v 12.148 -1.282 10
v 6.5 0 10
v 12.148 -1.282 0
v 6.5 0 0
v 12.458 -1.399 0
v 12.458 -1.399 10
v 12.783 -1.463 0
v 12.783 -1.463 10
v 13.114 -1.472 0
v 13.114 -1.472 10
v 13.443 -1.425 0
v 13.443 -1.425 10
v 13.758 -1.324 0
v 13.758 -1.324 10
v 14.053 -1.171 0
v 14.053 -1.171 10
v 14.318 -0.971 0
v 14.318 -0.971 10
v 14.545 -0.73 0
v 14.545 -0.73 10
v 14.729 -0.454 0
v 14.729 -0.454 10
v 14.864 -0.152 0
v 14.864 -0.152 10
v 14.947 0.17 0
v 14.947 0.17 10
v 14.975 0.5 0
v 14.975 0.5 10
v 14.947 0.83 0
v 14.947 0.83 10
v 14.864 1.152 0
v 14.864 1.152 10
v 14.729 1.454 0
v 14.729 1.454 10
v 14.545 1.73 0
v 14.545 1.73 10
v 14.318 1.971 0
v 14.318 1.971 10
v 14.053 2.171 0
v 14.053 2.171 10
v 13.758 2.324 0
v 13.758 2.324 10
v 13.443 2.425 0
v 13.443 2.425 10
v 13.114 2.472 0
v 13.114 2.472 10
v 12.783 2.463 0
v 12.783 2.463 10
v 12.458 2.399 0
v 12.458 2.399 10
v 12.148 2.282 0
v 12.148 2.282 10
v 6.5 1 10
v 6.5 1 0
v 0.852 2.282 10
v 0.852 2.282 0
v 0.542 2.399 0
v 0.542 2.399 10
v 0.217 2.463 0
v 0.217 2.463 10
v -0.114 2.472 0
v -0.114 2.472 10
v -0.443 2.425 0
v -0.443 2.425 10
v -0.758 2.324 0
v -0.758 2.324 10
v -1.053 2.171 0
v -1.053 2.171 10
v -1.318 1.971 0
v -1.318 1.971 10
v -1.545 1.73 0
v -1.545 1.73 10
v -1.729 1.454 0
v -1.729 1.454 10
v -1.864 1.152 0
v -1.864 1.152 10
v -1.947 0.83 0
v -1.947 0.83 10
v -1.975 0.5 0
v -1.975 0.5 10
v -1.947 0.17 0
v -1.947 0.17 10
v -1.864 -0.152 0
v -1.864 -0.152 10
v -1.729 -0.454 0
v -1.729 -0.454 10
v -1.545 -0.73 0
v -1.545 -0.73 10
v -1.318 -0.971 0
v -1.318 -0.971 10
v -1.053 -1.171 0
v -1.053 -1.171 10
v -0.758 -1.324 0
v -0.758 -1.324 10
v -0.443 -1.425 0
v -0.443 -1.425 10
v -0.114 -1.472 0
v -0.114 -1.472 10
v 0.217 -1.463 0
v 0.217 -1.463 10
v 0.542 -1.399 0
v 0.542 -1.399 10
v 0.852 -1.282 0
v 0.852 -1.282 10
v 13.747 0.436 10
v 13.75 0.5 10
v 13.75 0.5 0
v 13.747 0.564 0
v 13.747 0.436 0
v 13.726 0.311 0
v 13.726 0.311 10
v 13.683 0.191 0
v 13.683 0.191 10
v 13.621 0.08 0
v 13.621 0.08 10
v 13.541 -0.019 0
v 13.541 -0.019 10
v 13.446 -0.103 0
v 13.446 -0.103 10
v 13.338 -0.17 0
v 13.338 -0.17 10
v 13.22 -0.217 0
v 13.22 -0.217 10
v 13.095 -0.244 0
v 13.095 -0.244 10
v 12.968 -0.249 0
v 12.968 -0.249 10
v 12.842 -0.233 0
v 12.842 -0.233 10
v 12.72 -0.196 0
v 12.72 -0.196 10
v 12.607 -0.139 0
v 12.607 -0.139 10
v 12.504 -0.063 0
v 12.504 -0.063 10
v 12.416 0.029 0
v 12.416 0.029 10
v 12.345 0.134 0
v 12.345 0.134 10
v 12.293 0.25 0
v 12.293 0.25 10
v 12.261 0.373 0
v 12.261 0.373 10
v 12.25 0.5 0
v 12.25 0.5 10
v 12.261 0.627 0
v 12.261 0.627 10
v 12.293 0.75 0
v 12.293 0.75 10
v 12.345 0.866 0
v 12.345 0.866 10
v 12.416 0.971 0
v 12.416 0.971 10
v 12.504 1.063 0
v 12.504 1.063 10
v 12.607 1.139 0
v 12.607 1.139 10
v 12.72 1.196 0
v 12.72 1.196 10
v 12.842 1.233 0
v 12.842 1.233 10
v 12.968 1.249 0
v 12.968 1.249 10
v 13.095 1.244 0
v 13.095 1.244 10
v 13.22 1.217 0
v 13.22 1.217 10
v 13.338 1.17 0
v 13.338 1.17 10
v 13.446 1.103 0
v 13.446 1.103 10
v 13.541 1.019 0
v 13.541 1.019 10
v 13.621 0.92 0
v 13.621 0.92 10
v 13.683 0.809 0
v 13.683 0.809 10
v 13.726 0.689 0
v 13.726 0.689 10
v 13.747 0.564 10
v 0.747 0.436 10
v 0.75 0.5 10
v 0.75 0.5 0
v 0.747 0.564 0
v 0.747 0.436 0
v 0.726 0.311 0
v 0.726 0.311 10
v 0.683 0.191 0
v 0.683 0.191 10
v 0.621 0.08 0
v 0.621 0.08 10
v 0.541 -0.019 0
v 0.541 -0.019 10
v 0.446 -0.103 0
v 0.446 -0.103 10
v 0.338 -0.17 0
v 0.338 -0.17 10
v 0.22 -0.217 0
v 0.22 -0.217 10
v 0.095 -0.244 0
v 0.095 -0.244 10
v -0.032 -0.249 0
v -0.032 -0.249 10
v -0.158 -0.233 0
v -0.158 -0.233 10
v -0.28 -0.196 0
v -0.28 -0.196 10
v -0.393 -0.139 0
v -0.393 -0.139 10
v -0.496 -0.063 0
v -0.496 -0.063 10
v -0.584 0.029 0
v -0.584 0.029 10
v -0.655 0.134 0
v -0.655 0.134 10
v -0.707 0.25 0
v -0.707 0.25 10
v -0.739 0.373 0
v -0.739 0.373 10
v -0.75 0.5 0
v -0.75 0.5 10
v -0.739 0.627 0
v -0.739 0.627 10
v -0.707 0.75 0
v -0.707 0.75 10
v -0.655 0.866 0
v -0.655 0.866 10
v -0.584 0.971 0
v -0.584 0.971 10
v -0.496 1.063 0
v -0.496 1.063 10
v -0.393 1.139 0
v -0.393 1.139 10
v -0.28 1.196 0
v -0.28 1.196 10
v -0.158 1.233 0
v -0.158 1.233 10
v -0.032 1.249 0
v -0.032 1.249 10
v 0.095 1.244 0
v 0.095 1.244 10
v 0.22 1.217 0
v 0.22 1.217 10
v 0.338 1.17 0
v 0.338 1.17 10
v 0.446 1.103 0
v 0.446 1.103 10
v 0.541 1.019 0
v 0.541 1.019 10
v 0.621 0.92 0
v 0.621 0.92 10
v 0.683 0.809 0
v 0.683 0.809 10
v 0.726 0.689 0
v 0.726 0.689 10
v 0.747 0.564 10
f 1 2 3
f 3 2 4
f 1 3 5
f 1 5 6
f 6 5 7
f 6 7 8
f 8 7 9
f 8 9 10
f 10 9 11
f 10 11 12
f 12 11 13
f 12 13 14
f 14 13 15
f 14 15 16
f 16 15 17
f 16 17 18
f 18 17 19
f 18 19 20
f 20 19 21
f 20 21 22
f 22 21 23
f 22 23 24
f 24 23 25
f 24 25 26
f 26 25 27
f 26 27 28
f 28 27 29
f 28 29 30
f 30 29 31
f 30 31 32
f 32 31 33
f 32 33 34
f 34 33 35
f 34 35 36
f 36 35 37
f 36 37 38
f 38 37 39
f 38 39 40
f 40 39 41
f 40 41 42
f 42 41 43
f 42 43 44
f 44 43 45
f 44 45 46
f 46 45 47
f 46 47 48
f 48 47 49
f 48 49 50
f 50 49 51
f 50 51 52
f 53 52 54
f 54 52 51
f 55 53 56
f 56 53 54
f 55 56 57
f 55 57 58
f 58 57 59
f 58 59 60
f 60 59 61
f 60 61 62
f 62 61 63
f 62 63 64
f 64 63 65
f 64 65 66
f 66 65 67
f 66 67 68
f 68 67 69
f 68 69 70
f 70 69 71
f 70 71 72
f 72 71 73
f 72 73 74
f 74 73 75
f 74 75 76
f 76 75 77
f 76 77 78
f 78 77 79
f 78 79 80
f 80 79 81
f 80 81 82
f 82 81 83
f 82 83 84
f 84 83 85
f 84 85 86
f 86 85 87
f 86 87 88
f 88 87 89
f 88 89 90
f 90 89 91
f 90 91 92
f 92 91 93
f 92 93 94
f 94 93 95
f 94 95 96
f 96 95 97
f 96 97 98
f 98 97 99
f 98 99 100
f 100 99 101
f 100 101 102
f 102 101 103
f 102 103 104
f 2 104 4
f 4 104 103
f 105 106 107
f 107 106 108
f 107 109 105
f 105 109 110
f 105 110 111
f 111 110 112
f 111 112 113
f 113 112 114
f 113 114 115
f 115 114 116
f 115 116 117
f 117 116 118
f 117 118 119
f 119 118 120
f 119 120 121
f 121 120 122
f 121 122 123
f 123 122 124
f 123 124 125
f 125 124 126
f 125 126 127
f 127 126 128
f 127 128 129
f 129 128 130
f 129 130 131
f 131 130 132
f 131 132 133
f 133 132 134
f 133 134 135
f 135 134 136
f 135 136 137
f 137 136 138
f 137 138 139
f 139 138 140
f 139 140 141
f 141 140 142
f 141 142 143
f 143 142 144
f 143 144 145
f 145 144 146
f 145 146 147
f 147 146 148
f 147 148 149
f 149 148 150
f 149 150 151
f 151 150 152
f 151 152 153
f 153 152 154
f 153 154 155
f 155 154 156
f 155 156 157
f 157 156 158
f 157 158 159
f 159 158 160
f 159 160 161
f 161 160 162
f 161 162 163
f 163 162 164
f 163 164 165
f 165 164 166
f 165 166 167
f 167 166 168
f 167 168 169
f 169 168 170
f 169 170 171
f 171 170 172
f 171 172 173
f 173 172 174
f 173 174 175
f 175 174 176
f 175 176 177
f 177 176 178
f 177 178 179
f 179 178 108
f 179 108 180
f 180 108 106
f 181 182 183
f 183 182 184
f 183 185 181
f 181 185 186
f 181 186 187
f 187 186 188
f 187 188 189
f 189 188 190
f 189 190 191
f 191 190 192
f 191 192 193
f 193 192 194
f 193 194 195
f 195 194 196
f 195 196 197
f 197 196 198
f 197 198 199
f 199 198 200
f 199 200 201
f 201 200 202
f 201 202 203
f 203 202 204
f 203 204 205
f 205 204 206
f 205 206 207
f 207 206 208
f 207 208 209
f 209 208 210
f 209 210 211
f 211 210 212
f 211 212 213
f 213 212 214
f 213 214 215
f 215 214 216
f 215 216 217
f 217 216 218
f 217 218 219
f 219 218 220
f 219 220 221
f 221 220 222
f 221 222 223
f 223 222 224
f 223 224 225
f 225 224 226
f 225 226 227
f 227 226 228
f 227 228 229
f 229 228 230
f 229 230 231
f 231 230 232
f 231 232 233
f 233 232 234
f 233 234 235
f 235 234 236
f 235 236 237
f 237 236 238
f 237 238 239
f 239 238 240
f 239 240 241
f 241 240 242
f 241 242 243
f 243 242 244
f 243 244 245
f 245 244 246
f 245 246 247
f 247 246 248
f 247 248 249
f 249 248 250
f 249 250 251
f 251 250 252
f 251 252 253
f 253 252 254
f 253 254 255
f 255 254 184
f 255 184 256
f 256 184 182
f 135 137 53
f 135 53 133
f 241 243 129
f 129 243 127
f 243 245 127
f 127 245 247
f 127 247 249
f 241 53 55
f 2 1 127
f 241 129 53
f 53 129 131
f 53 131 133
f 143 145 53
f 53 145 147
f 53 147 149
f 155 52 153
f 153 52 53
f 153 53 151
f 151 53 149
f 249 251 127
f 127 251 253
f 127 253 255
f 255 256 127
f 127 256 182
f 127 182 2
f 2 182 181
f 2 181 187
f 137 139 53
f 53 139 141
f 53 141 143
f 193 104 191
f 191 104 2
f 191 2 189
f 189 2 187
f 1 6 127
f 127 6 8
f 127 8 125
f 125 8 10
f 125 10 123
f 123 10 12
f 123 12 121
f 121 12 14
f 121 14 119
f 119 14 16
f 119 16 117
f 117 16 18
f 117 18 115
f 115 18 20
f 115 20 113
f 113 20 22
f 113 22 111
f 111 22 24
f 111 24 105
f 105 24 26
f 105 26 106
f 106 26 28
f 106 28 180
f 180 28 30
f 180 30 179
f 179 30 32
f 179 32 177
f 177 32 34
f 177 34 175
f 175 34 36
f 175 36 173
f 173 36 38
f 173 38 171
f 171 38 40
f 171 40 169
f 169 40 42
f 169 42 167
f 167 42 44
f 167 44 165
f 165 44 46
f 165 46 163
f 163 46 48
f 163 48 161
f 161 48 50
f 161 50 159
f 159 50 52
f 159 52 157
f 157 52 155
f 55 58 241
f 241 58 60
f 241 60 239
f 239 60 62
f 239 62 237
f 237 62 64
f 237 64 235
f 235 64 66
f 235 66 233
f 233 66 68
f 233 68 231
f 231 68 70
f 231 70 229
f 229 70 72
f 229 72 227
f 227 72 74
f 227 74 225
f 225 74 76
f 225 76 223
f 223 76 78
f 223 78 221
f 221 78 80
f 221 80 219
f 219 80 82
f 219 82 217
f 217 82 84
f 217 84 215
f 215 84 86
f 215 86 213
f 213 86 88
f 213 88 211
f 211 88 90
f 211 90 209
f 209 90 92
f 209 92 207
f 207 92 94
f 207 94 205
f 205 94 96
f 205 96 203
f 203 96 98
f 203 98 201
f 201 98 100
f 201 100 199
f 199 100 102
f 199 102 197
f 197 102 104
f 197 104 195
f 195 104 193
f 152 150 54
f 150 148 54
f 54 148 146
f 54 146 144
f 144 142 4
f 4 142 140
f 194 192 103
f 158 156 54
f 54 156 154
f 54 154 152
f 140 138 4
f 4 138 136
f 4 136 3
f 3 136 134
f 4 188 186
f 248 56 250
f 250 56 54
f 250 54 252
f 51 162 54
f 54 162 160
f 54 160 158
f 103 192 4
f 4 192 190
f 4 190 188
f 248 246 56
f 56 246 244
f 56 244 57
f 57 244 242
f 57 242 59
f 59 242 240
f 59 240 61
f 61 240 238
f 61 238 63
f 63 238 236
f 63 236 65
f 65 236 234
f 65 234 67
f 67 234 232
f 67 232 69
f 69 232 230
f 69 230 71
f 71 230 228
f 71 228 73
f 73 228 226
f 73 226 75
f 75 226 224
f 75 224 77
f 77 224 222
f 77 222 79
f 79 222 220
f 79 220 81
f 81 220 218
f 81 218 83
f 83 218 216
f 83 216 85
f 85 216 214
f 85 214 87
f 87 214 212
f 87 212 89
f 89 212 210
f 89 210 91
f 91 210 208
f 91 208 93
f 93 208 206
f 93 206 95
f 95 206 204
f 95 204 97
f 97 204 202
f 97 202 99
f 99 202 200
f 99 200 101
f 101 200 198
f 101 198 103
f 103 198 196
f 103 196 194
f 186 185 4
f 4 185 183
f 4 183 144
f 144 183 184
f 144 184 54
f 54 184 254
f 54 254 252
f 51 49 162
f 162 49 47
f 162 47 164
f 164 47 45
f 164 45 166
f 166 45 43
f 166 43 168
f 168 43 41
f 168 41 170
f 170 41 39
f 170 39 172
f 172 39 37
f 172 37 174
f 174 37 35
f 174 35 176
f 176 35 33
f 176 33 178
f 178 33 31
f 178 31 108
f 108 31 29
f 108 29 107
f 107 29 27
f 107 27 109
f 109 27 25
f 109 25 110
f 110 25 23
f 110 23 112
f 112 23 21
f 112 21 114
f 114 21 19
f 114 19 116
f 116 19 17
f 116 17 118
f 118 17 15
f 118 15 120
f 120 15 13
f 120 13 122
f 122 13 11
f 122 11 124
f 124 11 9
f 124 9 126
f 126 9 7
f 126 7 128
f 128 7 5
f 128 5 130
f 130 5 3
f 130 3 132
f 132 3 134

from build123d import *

# Parameters (mm, degrees)
SKETCH1_R           = 0.75
BOSS_EXTRUDE1_DEPTH = 10


with BuildPart() as part:
    # Sketch1 → Boss-Extrude1 (new body)
    with BuildSketch(Plane.XY):
        with BuildLine():
            Line((12.147549978, 2.281559418), (6.5, 1))
            Line((6.5, 1), (0.852450022, 2.281559418))
            ThreePointArc((0.852450022, 2.281559418), (-1.975, 0.5), (0.852450022, -1.281559418))
            Line((0.852450022, -1.281559418), (6.5, 0))
            Line((6.5, 0), (12.147549978, -1.281559418))
            ThreePointArc((12.147549978, -1.281559418), (14.975, 0.5), (12.147549978, 2.281559418))
        make_face()
        with Locations((0, 0.5)):
            Circle(SKETCH1_R, mode=Mode.SUBTRACT)
        with Locations((13, 0.5)):
            Circle(SKETCH1_R, mode=Mode.SUBTRACT)
    extrude(amount=BOSS_EXTRUDE1_DEPTH)


solid = part.part
